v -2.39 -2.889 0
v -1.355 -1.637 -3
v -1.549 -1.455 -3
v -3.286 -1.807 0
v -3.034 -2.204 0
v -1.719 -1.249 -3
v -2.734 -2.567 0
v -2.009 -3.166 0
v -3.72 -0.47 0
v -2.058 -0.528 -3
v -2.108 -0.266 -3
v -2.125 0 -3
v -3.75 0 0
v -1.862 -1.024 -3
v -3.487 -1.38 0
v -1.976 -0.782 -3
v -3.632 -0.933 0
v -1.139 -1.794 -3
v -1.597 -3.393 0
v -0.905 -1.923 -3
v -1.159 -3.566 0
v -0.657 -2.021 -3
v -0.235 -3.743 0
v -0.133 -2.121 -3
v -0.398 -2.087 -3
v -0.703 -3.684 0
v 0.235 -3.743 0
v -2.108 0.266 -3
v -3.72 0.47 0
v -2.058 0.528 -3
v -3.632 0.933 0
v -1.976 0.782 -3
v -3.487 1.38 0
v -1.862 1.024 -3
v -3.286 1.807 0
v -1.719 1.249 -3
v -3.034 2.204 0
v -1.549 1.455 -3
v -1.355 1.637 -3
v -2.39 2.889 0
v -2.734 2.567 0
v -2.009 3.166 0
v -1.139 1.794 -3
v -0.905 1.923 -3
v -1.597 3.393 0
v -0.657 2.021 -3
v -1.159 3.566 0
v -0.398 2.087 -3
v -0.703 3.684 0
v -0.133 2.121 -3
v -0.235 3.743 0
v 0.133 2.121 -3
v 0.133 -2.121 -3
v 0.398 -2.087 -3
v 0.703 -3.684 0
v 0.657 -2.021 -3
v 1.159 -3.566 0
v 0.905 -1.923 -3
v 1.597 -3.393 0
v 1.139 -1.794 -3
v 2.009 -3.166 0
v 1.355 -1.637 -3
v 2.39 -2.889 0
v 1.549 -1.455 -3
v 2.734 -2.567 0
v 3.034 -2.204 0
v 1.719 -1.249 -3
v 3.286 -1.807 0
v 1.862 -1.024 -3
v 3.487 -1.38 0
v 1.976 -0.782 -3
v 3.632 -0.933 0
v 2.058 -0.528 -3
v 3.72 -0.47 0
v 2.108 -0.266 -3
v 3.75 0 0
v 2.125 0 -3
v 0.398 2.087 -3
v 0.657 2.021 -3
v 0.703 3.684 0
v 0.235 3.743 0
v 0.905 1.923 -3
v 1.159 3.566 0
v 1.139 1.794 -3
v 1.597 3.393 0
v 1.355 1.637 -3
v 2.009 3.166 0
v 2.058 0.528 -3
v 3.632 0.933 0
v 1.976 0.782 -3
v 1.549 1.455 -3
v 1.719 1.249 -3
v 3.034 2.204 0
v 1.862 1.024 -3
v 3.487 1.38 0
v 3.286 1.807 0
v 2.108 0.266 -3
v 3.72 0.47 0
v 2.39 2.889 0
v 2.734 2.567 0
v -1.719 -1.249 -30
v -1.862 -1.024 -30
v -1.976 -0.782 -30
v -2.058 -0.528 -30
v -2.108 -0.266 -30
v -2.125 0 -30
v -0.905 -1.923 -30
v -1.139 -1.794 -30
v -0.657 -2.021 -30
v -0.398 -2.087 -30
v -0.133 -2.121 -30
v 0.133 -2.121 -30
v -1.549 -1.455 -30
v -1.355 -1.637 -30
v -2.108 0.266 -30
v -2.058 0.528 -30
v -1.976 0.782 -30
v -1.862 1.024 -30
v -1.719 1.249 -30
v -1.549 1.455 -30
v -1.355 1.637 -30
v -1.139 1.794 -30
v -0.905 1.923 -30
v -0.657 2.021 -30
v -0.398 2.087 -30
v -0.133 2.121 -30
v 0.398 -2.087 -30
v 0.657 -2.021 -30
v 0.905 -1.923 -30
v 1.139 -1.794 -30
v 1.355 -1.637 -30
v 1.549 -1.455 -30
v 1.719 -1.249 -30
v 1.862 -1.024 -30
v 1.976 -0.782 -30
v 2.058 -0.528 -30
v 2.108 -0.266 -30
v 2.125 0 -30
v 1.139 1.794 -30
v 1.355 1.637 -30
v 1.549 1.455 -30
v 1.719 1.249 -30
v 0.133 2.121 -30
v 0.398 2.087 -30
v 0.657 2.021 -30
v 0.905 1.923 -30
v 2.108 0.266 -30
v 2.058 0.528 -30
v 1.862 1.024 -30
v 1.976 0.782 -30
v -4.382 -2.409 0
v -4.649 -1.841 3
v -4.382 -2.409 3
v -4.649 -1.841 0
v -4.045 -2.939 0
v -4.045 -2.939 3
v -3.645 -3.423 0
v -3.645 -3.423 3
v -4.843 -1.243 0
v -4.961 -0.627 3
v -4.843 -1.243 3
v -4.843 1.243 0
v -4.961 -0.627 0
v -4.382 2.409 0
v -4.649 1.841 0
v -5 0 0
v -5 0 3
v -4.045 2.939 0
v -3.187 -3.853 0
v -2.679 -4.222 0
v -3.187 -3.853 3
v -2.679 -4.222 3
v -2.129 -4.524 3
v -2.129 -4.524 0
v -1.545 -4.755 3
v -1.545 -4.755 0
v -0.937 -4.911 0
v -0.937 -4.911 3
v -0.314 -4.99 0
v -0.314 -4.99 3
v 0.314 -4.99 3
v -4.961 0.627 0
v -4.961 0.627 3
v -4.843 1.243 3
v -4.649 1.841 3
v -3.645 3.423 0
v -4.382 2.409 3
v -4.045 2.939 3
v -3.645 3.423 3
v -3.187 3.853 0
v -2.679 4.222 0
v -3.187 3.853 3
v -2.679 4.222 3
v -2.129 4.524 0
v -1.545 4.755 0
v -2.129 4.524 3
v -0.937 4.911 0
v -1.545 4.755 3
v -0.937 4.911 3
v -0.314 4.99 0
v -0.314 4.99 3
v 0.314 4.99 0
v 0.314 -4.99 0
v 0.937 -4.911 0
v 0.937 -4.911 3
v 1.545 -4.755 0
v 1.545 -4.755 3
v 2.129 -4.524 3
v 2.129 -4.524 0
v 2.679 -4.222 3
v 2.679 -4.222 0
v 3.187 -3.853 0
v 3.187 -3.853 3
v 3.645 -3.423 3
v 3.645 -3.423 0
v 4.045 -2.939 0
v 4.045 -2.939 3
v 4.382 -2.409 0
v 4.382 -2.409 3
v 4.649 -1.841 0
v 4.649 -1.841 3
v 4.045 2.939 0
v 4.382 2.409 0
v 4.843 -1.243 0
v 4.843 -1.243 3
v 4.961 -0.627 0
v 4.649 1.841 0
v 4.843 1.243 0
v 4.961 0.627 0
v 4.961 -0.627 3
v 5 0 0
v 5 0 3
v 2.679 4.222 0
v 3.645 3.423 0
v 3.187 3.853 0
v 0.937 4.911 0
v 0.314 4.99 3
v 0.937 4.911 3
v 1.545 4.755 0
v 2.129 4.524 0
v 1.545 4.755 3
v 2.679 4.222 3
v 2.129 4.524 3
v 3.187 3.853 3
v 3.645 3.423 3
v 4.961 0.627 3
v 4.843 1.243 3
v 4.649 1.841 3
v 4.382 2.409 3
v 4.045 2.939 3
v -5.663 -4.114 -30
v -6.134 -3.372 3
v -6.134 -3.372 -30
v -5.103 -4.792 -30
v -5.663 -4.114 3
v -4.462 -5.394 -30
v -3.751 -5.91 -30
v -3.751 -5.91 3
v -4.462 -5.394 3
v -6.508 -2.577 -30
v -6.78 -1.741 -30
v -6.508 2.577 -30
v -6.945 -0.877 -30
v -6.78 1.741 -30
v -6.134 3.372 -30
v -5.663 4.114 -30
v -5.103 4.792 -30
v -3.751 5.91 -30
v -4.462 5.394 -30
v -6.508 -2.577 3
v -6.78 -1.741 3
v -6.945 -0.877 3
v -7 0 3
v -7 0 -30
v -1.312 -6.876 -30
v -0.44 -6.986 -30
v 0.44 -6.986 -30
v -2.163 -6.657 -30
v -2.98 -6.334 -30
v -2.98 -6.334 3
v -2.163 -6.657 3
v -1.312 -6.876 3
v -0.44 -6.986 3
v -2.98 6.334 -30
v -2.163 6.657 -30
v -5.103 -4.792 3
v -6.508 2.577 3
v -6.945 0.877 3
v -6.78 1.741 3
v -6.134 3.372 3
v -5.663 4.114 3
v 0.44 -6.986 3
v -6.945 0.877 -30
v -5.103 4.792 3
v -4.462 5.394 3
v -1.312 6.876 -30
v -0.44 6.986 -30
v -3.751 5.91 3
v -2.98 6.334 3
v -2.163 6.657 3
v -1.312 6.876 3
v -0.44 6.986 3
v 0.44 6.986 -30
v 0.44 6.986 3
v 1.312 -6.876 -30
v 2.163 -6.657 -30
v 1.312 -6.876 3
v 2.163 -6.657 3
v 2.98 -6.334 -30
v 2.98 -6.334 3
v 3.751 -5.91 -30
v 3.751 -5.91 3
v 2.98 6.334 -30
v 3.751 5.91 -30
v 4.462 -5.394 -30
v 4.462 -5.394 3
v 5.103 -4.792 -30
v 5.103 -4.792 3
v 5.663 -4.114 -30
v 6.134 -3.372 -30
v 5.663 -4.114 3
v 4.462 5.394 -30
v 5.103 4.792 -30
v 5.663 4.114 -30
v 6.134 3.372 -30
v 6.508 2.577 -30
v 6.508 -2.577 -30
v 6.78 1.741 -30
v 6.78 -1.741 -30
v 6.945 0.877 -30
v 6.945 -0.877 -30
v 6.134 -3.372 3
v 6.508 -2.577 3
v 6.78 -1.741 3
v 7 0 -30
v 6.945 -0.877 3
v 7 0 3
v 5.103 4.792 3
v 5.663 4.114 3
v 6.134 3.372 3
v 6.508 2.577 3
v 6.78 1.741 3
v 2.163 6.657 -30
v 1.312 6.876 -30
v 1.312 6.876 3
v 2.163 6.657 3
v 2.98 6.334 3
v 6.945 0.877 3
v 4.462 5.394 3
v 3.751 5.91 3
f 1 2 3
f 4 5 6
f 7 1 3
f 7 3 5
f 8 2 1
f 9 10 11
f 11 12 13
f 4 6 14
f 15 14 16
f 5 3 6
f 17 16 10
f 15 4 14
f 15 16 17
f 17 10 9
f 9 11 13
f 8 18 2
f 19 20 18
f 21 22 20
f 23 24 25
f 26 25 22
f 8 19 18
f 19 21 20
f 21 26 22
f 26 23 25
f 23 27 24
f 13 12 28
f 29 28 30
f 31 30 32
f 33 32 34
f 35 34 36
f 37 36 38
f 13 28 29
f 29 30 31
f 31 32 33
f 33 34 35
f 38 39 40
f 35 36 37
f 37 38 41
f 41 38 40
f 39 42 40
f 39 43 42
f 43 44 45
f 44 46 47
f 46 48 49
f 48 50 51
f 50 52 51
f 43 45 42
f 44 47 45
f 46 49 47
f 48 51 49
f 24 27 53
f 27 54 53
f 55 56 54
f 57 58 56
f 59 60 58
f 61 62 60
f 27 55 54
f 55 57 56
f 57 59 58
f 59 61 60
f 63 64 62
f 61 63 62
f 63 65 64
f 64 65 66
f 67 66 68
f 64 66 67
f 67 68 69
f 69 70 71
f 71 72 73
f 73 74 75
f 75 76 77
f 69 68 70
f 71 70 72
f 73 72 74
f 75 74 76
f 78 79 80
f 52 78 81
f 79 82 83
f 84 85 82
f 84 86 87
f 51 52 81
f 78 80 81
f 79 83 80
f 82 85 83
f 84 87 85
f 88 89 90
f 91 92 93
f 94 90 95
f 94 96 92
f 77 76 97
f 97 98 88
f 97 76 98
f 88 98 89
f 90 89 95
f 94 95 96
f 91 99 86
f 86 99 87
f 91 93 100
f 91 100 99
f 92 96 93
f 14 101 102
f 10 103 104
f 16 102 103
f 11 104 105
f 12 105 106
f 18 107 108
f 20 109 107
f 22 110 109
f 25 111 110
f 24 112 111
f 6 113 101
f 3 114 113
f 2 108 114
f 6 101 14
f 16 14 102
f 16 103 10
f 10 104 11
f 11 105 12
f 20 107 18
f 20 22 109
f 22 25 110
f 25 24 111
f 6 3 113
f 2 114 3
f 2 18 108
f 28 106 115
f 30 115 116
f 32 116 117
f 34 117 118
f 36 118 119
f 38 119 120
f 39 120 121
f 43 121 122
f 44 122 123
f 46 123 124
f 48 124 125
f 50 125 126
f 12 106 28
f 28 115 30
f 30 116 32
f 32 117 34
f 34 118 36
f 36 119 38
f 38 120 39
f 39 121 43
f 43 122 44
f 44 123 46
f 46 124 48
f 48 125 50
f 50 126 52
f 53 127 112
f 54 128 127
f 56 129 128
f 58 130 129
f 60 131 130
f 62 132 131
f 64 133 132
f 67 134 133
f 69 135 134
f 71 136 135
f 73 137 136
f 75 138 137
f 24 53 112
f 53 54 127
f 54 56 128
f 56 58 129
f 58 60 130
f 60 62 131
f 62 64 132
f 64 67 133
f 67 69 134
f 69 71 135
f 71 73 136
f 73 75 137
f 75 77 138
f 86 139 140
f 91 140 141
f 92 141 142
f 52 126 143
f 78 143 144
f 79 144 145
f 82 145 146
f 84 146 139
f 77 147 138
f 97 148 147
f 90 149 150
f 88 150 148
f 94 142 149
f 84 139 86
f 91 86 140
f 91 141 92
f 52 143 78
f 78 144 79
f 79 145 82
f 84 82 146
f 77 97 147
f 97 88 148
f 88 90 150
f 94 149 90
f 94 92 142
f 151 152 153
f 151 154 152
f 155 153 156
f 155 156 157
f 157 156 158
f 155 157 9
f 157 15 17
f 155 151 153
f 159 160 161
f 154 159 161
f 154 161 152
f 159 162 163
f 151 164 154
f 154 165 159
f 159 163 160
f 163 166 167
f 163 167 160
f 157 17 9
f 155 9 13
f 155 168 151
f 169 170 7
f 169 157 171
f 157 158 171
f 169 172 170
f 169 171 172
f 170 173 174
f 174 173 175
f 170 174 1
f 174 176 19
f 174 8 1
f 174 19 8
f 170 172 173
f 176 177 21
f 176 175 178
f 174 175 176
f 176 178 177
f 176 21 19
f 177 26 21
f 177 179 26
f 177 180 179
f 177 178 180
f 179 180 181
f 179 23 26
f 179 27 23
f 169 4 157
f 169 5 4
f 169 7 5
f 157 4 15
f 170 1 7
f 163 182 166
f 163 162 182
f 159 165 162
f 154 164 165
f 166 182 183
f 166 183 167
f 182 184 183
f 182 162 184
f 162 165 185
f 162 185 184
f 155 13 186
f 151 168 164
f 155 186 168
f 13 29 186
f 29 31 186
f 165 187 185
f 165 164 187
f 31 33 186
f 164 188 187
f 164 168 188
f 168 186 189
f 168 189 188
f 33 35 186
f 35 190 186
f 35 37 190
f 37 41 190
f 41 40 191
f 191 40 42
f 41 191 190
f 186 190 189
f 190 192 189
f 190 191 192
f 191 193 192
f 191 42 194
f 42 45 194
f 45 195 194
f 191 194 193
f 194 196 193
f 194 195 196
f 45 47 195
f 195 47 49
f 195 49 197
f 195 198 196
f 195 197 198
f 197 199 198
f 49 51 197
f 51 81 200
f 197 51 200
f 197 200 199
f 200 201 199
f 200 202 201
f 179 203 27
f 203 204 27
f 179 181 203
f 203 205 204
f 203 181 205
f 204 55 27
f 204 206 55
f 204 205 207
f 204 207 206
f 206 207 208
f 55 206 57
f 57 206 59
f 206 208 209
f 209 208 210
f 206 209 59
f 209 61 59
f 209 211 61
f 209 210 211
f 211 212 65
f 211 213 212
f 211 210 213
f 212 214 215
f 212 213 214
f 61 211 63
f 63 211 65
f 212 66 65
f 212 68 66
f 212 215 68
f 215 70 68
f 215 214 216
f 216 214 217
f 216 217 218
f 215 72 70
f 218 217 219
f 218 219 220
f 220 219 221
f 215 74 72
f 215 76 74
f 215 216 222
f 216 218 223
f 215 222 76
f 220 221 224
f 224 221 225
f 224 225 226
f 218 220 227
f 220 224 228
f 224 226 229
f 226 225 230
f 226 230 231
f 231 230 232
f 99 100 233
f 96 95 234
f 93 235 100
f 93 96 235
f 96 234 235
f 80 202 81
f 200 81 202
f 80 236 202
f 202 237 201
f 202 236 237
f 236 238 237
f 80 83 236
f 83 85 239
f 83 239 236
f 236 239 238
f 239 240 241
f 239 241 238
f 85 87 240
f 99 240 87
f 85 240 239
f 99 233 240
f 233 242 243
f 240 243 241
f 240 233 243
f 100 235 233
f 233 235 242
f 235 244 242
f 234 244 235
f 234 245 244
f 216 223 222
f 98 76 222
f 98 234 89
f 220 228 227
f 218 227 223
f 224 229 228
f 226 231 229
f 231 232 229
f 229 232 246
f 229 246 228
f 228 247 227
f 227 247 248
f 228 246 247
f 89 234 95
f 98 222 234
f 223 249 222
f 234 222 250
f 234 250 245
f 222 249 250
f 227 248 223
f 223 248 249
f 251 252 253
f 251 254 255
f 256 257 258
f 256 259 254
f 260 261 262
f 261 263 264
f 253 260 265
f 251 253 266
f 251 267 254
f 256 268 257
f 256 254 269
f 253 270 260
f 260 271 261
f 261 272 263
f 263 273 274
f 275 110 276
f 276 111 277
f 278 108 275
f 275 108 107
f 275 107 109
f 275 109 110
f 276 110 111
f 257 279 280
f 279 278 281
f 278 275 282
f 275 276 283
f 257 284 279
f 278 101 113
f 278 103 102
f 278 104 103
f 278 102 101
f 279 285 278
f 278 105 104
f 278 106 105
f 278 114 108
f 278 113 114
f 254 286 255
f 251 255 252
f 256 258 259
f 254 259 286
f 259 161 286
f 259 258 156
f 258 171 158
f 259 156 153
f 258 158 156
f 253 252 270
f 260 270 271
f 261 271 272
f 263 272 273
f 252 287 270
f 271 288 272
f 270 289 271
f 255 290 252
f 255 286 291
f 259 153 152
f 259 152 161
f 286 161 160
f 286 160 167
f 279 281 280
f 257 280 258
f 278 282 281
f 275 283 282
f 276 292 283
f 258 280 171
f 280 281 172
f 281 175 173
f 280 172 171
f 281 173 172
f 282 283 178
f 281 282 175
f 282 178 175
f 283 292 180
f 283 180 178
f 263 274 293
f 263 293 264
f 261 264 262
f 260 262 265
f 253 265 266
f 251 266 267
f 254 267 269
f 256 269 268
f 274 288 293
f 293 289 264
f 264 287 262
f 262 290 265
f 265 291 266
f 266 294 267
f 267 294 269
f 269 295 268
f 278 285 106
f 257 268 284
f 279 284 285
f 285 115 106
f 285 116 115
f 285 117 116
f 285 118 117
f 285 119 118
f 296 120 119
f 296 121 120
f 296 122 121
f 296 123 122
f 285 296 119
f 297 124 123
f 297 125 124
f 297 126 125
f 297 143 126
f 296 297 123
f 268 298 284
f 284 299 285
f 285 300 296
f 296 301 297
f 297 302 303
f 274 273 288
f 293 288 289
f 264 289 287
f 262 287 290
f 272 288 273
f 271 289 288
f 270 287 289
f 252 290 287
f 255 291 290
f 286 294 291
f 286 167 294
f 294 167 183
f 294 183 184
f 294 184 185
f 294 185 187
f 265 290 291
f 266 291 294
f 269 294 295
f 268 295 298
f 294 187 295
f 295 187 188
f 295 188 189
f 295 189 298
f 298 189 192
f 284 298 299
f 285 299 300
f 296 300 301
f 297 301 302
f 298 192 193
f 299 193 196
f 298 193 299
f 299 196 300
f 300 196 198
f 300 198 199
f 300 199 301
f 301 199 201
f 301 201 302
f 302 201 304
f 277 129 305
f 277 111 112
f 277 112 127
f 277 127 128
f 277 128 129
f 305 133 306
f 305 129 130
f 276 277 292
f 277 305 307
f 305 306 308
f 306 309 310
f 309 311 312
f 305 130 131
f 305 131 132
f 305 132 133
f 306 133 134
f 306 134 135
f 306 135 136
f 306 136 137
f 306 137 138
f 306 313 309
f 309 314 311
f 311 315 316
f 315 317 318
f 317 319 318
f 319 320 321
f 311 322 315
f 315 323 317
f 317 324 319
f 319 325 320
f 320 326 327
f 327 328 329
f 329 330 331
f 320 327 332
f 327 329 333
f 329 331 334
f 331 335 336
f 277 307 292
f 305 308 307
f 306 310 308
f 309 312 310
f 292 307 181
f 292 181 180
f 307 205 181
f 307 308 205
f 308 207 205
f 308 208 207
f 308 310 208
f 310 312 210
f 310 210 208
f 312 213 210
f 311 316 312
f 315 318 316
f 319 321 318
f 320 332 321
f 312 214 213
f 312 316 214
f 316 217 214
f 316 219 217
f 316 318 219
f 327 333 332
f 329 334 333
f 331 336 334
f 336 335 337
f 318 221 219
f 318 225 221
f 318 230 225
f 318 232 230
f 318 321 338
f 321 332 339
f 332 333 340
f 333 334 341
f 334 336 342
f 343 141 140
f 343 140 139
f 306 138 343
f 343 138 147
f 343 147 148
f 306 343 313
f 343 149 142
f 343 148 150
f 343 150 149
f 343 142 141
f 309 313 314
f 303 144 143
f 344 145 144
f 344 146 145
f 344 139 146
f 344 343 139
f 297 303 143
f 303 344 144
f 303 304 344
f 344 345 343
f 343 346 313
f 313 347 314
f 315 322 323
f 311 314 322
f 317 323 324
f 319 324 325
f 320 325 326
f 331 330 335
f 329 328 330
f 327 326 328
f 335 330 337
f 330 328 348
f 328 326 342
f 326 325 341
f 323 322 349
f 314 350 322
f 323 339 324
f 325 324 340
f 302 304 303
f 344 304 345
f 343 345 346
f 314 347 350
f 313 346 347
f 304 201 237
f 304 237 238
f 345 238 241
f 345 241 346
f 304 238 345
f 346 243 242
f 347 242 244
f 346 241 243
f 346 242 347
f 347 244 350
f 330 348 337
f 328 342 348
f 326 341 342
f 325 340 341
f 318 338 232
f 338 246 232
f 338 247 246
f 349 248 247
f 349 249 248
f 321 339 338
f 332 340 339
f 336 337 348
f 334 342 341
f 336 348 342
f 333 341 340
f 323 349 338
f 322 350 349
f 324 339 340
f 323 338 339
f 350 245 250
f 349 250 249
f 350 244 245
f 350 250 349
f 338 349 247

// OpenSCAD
$fn = 50;

difference() {
	union() {
		translate(v = [0, 0, -30.0]) {
			cylinder(h = 33, r = 7.0);
		}
	}
	union() {
		translate(v = [0, 0, 0]) {
			rotate(a = [0, 0, 0]) {
				difference() {
					union() {
						translate(v = [0, 0, -33.0]) {
							cylinder(h = 33, r = 2.0);
						}
						translate(v = [0, 0, -3]) {
							cylinder(h = 3, r1 = 2.125, r2 = 3.75);
						}
						translate(v = [0, 0, -33.0]) {
							cylinder(h = 33, r = 2.125);
						}
						translate(v = [0, 0, -33.0]) {
							cylinder(h = 33, r = 2.0);
						}
					}
					union();
				}
			}
		}
		#cylinder(h = 3, r = 5.0);
	}
}
